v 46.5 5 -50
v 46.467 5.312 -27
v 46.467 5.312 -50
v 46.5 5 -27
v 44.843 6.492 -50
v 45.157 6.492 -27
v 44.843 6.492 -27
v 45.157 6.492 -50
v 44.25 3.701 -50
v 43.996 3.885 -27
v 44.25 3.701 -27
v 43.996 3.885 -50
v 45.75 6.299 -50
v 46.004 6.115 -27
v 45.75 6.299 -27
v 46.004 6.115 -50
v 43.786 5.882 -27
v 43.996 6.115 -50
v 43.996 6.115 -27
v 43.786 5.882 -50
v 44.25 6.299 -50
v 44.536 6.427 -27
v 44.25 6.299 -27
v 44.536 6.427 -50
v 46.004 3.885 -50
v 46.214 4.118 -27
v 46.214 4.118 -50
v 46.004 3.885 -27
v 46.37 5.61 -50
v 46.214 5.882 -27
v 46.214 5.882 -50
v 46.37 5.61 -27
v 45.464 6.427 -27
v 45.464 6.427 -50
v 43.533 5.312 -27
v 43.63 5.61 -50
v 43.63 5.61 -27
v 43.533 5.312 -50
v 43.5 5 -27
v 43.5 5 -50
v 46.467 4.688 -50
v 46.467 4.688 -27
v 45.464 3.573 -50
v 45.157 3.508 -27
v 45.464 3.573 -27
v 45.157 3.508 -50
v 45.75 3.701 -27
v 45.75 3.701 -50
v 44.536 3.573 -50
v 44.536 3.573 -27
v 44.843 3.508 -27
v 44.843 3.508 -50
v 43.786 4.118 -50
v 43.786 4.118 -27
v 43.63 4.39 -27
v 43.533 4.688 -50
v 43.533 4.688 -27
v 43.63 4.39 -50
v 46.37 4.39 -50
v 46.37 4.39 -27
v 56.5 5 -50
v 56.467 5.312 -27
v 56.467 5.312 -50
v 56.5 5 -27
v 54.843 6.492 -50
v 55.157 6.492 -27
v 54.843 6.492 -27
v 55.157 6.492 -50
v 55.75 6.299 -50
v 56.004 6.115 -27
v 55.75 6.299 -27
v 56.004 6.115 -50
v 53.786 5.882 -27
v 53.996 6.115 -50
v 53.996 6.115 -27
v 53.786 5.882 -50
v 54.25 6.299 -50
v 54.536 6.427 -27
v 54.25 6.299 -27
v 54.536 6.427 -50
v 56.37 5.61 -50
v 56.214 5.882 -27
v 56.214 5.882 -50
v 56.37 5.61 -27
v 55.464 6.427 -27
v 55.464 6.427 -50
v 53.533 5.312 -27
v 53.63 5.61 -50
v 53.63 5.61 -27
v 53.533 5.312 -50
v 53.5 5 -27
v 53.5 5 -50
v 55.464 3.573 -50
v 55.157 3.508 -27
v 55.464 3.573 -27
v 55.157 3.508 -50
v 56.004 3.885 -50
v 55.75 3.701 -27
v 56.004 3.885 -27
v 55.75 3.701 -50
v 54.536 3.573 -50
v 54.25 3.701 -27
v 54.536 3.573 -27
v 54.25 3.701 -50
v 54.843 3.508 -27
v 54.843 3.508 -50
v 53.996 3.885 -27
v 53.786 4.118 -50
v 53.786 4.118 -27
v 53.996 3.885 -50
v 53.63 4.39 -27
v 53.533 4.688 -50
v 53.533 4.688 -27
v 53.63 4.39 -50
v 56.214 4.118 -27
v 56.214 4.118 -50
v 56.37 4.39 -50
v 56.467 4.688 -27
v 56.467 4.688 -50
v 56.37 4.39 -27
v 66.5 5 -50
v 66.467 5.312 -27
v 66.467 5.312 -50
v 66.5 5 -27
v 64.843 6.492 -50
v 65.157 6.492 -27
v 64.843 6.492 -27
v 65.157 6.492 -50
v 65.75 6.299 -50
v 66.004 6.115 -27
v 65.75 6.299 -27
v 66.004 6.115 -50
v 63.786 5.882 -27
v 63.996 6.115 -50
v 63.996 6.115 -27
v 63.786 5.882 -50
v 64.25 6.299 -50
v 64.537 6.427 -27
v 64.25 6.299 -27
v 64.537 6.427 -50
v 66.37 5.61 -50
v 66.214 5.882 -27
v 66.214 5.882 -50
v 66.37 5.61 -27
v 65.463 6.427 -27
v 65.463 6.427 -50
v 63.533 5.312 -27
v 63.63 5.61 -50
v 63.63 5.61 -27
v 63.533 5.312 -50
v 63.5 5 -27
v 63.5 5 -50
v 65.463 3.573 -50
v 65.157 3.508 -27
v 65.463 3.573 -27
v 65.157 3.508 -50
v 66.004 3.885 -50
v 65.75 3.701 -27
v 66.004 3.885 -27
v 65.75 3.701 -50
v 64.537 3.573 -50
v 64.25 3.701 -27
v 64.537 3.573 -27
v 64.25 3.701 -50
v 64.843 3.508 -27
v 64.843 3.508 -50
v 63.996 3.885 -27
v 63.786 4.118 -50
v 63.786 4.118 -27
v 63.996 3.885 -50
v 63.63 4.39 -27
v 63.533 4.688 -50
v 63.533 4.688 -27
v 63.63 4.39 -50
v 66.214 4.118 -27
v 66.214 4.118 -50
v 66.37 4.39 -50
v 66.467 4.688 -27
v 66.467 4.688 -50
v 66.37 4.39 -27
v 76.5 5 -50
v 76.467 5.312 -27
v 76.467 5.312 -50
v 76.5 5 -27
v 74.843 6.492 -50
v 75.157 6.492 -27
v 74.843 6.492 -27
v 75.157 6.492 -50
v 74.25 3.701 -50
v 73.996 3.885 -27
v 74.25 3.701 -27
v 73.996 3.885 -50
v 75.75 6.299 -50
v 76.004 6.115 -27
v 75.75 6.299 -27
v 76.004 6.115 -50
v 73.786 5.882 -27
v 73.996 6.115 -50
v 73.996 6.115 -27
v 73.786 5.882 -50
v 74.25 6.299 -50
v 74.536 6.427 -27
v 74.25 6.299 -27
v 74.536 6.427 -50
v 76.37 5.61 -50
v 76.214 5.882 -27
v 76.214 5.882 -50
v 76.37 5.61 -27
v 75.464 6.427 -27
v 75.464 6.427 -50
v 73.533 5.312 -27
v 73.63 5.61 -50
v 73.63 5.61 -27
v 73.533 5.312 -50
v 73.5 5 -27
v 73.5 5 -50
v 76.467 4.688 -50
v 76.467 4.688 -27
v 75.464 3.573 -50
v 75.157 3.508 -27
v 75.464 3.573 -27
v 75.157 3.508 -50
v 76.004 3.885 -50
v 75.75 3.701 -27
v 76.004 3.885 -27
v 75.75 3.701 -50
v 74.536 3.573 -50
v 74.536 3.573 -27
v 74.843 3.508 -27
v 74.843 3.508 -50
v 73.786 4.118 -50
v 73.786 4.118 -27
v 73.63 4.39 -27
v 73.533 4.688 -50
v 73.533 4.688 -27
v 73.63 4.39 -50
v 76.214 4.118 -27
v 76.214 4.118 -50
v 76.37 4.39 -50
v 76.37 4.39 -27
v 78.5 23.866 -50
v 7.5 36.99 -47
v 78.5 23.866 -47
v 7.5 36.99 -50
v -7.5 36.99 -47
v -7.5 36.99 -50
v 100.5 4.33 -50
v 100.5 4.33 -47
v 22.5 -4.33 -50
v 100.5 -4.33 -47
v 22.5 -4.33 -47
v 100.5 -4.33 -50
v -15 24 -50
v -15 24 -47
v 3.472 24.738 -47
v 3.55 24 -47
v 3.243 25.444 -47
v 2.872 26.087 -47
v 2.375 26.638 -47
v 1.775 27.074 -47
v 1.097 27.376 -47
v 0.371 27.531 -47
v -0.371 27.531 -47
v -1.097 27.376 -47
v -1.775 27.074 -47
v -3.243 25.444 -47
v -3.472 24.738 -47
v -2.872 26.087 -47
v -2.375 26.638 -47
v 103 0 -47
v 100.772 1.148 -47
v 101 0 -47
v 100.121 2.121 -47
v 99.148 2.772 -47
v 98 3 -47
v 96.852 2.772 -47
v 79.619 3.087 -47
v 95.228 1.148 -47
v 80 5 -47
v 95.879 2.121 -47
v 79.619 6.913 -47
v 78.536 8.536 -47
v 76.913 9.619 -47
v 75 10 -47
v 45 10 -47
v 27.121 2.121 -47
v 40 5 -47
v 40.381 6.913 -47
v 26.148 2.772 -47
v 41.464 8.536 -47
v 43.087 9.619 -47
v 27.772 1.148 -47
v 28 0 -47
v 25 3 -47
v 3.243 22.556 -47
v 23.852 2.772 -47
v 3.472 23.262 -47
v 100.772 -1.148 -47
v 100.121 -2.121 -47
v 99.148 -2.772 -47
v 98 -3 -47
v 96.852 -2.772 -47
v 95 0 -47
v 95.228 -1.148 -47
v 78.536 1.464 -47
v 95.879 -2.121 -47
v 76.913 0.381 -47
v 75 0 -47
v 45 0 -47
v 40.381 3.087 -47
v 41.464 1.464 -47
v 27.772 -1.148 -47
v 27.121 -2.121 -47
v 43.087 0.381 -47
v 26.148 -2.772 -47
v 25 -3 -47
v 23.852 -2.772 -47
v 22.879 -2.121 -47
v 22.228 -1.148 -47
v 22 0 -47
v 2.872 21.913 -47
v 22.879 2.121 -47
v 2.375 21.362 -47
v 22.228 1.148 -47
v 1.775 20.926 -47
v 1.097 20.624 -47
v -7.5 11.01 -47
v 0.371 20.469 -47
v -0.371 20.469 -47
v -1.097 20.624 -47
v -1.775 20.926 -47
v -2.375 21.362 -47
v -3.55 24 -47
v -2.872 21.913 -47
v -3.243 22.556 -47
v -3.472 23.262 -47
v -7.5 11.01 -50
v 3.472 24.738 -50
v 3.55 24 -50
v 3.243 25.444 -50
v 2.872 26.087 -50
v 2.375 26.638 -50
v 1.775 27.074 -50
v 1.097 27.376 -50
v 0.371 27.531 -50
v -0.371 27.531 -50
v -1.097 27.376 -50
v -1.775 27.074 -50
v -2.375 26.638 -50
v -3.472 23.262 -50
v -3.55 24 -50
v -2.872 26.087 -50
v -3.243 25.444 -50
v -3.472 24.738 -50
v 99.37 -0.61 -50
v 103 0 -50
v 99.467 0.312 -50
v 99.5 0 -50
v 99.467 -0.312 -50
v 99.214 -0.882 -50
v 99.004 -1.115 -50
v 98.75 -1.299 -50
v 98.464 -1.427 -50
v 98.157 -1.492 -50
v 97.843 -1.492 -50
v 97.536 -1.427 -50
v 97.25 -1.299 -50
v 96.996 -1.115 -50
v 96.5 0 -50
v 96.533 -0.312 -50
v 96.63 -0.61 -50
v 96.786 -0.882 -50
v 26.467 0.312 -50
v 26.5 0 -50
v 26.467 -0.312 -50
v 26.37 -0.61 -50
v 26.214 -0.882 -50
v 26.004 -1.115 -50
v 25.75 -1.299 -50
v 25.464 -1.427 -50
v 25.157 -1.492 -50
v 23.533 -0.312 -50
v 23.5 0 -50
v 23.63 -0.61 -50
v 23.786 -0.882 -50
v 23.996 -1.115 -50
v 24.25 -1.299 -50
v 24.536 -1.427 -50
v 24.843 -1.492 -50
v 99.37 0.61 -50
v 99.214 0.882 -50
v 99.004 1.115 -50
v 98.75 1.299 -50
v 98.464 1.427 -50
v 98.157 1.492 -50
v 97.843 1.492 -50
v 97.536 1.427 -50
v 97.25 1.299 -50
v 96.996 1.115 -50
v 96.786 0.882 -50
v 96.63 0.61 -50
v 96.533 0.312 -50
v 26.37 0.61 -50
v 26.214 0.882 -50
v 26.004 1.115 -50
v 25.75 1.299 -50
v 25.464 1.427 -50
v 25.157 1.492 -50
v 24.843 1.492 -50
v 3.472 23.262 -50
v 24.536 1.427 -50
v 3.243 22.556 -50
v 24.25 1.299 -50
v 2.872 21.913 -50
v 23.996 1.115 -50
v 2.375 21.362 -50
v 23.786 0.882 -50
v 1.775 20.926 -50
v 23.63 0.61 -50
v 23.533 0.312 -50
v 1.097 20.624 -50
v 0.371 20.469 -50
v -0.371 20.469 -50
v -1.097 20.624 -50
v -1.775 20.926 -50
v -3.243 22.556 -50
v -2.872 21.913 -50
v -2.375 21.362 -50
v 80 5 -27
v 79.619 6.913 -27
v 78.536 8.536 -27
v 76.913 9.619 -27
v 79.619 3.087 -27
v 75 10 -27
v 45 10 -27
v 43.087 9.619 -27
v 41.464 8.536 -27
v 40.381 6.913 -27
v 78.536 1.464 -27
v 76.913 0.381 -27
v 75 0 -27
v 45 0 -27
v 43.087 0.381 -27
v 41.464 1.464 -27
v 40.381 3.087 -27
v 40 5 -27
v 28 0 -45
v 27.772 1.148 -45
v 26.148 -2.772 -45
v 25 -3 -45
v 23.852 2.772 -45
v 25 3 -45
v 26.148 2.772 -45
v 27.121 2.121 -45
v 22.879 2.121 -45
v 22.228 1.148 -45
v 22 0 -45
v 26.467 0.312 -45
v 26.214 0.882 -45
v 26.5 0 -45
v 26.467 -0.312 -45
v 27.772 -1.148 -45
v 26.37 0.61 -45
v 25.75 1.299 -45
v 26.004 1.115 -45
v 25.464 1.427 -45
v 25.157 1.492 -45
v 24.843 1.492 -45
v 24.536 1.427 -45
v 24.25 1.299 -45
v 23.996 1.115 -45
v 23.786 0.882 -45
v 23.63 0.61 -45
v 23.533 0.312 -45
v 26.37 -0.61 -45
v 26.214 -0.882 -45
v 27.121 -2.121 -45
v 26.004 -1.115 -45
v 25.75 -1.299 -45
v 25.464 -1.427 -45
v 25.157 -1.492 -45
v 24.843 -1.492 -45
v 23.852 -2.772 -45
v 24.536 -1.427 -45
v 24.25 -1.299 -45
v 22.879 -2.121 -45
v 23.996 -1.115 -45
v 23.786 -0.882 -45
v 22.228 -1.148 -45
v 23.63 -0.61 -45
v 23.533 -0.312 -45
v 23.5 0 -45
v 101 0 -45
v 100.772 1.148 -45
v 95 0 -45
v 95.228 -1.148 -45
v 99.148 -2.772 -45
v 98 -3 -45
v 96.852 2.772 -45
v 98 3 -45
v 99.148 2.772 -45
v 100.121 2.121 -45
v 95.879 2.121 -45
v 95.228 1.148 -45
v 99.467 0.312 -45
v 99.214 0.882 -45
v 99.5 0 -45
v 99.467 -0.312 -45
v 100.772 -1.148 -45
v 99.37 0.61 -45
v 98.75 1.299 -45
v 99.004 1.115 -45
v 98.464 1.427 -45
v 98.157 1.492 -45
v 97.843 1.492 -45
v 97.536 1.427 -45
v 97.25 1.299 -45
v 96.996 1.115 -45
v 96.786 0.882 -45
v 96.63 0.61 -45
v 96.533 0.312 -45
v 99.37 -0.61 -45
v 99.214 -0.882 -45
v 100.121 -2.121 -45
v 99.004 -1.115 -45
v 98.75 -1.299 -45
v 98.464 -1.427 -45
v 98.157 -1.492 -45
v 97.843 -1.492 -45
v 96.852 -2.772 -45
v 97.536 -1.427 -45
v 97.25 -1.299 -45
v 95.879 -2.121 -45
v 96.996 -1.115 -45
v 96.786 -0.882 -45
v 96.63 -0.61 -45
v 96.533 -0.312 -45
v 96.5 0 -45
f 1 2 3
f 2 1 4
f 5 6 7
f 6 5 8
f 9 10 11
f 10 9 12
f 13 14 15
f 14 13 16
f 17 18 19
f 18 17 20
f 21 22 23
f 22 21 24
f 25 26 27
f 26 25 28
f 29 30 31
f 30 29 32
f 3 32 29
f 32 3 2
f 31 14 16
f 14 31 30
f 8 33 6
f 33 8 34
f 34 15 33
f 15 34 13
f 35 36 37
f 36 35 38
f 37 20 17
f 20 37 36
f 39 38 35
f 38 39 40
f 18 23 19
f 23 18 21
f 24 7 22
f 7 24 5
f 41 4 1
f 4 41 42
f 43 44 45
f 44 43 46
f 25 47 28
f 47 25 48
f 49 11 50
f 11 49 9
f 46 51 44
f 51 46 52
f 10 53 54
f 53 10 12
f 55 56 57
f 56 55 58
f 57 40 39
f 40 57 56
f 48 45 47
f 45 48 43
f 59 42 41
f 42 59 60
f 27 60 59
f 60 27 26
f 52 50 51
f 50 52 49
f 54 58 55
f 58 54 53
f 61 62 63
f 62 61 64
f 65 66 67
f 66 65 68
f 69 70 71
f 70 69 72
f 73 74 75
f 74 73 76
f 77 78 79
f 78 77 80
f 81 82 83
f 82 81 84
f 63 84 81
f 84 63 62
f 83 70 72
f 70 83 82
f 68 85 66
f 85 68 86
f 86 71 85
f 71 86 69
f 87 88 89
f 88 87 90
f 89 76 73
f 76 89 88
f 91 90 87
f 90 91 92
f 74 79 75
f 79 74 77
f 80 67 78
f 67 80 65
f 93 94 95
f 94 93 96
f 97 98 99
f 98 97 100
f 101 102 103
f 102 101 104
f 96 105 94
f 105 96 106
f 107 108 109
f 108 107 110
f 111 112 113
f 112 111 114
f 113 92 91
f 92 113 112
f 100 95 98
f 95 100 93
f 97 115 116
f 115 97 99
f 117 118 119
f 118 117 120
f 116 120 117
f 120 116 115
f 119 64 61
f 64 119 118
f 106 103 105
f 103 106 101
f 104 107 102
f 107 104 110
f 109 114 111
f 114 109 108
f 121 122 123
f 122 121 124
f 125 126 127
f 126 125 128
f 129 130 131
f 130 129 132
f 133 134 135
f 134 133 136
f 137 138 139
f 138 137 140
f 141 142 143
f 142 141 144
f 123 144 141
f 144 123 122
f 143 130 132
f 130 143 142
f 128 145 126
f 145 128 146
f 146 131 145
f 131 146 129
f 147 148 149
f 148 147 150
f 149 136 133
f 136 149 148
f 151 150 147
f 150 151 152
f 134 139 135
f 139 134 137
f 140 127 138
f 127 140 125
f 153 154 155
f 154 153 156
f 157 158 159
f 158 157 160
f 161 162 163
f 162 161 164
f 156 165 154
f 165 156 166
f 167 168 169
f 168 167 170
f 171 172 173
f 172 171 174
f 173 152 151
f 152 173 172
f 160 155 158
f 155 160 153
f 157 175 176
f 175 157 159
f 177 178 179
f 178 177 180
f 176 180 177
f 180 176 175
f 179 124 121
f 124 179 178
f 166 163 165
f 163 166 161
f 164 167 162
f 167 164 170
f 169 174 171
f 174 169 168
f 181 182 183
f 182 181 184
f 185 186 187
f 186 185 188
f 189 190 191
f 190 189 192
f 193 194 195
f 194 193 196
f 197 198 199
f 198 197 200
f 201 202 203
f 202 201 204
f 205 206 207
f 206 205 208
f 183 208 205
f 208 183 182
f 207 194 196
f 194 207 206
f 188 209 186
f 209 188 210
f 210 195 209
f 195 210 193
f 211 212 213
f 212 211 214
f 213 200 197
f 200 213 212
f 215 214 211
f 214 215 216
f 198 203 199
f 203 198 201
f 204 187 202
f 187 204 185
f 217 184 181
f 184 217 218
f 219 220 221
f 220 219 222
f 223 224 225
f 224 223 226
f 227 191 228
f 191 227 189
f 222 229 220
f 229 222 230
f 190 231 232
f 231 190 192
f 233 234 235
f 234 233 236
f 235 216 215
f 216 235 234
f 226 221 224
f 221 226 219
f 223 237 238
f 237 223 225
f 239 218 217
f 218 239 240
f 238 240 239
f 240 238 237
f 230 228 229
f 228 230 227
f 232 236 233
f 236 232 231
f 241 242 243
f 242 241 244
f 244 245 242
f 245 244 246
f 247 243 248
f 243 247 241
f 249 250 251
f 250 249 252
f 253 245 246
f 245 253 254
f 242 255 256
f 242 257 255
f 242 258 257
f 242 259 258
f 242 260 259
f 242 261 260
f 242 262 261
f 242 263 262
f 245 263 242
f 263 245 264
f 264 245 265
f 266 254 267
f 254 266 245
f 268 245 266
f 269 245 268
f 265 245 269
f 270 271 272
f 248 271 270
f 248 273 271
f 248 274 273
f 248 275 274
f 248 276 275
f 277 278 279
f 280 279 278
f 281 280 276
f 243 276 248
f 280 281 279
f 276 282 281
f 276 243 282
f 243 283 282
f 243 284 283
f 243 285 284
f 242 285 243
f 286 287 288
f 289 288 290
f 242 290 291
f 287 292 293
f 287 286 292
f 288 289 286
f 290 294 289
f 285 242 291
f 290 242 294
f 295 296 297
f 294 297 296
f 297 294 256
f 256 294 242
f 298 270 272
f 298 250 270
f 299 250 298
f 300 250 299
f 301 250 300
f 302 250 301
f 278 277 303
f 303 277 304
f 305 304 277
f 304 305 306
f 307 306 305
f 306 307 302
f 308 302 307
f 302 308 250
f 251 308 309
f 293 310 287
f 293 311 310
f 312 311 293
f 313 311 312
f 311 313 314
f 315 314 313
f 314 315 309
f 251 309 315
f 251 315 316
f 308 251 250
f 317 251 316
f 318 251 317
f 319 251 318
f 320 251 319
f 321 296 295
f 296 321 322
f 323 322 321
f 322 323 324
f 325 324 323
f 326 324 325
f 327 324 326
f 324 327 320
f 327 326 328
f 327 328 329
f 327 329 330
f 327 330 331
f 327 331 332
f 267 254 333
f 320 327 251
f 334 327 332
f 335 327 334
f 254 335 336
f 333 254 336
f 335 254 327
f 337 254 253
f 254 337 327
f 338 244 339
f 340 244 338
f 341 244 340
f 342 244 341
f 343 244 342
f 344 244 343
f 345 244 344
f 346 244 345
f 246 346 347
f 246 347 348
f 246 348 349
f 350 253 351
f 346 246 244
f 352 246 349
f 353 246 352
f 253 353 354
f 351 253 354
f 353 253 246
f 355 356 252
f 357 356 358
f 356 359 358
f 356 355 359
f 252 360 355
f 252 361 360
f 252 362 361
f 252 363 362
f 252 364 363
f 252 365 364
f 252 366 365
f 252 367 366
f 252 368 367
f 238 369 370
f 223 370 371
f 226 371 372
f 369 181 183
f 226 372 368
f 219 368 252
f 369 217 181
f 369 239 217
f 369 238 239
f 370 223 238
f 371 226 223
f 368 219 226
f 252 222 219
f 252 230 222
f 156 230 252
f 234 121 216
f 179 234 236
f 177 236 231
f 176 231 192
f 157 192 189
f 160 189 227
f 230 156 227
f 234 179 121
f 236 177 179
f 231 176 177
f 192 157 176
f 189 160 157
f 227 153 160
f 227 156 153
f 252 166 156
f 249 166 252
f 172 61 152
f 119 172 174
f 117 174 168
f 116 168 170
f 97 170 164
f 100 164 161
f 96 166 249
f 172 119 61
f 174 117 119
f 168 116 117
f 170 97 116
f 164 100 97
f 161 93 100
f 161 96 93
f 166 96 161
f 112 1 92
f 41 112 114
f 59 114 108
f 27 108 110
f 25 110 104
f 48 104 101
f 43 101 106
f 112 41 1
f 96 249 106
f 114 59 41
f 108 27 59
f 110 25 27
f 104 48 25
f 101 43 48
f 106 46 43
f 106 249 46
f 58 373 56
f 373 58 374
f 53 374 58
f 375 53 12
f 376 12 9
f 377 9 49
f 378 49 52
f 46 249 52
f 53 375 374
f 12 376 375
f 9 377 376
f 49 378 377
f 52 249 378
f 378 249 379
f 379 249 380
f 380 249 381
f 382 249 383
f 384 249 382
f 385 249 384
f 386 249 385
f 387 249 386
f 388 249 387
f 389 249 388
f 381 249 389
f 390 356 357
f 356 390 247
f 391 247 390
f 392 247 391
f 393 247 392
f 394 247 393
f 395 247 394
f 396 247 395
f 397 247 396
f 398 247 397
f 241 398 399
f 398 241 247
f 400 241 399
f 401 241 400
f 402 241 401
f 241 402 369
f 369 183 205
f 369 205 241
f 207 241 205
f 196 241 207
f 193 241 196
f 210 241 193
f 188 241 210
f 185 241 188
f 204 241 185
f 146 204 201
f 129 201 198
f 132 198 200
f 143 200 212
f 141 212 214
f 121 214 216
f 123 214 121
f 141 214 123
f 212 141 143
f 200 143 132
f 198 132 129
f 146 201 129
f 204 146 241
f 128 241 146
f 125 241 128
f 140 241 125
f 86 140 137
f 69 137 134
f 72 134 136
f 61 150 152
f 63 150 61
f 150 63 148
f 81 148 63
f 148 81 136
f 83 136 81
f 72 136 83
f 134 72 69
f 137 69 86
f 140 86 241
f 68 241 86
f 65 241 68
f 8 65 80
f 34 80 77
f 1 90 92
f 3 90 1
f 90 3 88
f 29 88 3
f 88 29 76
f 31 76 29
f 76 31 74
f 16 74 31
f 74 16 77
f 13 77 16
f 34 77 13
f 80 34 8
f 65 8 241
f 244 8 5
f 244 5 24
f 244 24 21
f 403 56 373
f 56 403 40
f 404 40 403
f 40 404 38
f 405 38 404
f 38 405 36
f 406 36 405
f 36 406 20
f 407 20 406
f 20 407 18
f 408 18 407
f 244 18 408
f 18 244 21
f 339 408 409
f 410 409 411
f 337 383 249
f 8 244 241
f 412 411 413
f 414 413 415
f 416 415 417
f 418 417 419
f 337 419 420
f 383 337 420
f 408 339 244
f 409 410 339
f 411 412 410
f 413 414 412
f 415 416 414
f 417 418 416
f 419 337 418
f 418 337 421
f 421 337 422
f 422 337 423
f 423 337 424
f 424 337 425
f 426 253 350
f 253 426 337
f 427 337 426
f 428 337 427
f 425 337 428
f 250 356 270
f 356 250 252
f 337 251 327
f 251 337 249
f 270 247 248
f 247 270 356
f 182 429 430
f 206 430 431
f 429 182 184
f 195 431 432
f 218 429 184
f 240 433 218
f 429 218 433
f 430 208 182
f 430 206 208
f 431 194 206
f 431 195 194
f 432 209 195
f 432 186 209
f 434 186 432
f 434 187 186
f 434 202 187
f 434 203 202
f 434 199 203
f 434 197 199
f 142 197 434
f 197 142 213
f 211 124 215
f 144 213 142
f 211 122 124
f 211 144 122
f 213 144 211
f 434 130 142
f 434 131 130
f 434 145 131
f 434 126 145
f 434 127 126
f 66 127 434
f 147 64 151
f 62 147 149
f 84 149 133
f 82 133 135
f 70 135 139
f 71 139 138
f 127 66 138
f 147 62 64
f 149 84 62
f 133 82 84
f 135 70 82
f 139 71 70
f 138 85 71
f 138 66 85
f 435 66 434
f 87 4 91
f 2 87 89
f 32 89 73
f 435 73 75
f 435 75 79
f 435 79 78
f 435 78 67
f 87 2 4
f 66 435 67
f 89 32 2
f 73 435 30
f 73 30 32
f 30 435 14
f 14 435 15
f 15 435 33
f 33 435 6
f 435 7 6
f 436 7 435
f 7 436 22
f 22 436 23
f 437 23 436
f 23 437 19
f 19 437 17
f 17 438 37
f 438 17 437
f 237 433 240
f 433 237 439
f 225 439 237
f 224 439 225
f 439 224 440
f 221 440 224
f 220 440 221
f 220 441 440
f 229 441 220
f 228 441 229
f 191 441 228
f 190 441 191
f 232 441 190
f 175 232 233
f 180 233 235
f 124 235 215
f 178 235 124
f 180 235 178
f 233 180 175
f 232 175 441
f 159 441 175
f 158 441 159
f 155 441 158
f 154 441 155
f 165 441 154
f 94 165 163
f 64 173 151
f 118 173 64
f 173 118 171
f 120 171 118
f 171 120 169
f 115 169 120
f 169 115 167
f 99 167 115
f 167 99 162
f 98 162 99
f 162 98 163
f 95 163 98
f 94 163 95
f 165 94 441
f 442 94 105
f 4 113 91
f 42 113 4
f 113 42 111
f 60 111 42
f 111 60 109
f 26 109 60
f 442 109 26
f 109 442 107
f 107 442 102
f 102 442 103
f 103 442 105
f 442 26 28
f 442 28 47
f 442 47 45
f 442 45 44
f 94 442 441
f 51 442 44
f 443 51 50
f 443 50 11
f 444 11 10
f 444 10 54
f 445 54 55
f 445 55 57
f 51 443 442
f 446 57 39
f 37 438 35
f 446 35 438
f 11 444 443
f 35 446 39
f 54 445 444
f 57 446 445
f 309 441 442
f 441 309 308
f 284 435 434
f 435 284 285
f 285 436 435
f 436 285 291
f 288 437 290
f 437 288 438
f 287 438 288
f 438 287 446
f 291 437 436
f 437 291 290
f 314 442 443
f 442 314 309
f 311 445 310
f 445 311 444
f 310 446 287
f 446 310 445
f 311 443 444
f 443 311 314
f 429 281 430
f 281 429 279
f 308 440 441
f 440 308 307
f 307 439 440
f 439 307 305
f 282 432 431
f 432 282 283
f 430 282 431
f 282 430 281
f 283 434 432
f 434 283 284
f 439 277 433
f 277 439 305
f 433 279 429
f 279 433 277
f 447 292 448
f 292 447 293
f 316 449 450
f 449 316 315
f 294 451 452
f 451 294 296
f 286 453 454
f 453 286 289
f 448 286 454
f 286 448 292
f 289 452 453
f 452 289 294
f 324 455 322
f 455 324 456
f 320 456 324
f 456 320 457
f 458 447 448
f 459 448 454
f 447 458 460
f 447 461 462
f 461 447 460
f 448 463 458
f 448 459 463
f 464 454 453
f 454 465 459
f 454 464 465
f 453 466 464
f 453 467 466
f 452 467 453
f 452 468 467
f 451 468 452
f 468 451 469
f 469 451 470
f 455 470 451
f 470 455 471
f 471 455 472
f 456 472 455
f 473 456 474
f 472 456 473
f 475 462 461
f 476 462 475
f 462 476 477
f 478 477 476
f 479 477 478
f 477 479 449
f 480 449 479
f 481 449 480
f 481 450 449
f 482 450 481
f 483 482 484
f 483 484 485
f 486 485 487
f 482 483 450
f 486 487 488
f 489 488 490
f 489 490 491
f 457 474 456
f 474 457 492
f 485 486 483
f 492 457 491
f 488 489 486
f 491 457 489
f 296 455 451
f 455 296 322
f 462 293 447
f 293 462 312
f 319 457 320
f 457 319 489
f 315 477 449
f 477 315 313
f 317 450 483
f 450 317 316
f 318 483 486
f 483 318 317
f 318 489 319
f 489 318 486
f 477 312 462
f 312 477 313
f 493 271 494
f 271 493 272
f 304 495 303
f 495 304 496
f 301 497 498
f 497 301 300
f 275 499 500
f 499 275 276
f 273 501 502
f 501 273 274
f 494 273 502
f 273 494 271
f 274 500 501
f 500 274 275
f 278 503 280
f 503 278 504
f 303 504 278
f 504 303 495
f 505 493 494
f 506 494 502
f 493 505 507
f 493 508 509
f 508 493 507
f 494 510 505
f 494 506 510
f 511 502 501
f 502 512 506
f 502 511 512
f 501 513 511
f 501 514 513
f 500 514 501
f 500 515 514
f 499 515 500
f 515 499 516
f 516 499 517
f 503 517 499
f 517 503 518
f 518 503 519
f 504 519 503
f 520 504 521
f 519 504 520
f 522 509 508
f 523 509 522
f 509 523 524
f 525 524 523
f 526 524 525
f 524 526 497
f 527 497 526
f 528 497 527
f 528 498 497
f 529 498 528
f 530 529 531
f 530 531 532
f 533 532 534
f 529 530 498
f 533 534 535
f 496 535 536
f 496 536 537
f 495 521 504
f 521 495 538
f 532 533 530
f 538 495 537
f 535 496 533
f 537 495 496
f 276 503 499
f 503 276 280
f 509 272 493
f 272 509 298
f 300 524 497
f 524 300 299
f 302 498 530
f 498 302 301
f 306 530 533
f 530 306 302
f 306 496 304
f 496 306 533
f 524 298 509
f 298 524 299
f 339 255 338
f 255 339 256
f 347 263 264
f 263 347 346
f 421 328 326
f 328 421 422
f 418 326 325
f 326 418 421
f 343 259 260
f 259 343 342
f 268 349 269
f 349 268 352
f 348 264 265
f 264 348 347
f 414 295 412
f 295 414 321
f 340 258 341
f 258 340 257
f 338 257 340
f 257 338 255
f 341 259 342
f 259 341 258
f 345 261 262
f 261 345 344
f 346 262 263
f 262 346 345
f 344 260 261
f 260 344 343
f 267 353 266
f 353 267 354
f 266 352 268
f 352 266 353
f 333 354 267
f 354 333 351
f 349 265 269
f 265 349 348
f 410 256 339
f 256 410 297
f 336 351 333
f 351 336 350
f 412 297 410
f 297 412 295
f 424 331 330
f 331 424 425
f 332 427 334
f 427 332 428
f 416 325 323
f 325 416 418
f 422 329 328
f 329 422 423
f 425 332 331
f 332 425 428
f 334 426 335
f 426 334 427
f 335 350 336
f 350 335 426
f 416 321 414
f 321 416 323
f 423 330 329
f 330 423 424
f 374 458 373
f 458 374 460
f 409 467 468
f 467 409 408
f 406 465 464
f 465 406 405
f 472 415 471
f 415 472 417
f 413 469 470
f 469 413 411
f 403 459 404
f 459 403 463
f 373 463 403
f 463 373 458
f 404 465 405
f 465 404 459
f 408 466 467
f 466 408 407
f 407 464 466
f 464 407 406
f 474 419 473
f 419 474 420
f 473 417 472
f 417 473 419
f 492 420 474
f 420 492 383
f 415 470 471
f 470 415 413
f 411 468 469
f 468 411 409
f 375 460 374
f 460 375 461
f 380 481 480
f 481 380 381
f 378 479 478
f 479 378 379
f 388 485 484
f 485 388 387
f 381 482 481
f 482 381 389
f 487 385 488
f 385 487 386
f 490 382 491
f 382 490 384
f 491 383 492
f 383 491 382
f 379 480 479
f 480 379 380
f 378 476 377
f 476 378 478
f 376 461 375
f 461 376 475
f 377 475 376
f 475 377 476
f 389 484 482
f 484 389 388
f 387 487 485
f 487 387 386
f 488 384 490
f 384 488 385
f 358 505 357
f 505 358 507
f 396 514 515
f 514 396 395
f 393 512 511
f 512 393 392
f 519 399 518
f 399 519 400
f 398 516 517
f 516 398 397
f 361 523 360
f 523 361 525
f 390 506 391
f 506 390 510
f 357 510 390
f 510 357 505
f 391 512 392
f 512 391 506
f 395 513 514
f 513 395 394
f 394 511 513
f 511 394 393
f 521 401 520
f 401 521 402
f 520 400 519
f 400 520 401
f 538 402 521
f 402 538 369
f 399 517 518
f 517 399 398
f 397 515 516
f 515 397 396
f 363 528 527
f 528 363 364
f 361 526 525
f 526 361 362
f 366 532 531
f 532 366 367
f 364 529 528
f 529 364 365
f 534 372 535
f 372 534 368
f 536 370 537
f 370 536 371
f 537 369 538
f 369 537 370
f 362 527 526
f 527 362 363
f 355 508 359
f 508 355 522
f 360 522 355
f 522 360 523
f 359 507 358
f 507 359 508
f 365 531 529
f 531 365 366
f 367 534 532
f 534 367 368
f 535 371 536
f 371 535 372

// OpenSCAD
driveWheel = [0,24,0];
idlerWheel1 = [25,0,0];
idlerWheel2 = [25+73,0,0];
rearpoint  = [25+73-20, 23, 0];
bodyWidth = 100;

nholes = 6;

chainDistance = 23;

module side(){
  difference(){
  union(){
    hull(){
      translate(driveWheel)cylinder(r=15,h=3,$fn=6);
      translate(idlerWheel1)cylinder(r=5,h=3,$fn=6);
      translate(idlerWheel2)cylinder(r=5,h=3,$fn=6);
      translate(rearpoint)cylinder(r=1,h=3,$fn=6);
    };
  

    translate([45,0,0])cube([30,10,chainDistance]);
    translate([45,5,0])cylinder(r=5,h=chainDistance);
    translate([75,5,0])cylinder(r=5,h=chainDistance);
    
    translate(idlerWheel1)cylinder(r=3,h=5,$fn=16);
    translate(idlerWheel2)cylinder(r=3,h=5,$fn=16);
    
  }
  // Differences
  translate([0,0,-5])translate(driveWheel)cylinder(r=3.55,h=15,$fn=30);

    
  translate([0, 0 ,-5])translate(idlerWheel1)cylinder(r=1.5,h=15,$fn=30);
  translate([0, 0 ,-5])translate(idlerWheel2)cylinder(r=1.5,h=15,$fn=30);

  // Attachement Holes
  
  for (i = [0:3]){
   x = idlerWheel1[0] + i*10 +20 ;
   translate([x, 5, -0.1])
   cylinder(r=1.5,h=28, $fn=30);
  }


  }
}

translate([0,0,-bodyWidth/2])side();
//translate([0,0,bodyWidth/2])mirror([0,0,1])side();
